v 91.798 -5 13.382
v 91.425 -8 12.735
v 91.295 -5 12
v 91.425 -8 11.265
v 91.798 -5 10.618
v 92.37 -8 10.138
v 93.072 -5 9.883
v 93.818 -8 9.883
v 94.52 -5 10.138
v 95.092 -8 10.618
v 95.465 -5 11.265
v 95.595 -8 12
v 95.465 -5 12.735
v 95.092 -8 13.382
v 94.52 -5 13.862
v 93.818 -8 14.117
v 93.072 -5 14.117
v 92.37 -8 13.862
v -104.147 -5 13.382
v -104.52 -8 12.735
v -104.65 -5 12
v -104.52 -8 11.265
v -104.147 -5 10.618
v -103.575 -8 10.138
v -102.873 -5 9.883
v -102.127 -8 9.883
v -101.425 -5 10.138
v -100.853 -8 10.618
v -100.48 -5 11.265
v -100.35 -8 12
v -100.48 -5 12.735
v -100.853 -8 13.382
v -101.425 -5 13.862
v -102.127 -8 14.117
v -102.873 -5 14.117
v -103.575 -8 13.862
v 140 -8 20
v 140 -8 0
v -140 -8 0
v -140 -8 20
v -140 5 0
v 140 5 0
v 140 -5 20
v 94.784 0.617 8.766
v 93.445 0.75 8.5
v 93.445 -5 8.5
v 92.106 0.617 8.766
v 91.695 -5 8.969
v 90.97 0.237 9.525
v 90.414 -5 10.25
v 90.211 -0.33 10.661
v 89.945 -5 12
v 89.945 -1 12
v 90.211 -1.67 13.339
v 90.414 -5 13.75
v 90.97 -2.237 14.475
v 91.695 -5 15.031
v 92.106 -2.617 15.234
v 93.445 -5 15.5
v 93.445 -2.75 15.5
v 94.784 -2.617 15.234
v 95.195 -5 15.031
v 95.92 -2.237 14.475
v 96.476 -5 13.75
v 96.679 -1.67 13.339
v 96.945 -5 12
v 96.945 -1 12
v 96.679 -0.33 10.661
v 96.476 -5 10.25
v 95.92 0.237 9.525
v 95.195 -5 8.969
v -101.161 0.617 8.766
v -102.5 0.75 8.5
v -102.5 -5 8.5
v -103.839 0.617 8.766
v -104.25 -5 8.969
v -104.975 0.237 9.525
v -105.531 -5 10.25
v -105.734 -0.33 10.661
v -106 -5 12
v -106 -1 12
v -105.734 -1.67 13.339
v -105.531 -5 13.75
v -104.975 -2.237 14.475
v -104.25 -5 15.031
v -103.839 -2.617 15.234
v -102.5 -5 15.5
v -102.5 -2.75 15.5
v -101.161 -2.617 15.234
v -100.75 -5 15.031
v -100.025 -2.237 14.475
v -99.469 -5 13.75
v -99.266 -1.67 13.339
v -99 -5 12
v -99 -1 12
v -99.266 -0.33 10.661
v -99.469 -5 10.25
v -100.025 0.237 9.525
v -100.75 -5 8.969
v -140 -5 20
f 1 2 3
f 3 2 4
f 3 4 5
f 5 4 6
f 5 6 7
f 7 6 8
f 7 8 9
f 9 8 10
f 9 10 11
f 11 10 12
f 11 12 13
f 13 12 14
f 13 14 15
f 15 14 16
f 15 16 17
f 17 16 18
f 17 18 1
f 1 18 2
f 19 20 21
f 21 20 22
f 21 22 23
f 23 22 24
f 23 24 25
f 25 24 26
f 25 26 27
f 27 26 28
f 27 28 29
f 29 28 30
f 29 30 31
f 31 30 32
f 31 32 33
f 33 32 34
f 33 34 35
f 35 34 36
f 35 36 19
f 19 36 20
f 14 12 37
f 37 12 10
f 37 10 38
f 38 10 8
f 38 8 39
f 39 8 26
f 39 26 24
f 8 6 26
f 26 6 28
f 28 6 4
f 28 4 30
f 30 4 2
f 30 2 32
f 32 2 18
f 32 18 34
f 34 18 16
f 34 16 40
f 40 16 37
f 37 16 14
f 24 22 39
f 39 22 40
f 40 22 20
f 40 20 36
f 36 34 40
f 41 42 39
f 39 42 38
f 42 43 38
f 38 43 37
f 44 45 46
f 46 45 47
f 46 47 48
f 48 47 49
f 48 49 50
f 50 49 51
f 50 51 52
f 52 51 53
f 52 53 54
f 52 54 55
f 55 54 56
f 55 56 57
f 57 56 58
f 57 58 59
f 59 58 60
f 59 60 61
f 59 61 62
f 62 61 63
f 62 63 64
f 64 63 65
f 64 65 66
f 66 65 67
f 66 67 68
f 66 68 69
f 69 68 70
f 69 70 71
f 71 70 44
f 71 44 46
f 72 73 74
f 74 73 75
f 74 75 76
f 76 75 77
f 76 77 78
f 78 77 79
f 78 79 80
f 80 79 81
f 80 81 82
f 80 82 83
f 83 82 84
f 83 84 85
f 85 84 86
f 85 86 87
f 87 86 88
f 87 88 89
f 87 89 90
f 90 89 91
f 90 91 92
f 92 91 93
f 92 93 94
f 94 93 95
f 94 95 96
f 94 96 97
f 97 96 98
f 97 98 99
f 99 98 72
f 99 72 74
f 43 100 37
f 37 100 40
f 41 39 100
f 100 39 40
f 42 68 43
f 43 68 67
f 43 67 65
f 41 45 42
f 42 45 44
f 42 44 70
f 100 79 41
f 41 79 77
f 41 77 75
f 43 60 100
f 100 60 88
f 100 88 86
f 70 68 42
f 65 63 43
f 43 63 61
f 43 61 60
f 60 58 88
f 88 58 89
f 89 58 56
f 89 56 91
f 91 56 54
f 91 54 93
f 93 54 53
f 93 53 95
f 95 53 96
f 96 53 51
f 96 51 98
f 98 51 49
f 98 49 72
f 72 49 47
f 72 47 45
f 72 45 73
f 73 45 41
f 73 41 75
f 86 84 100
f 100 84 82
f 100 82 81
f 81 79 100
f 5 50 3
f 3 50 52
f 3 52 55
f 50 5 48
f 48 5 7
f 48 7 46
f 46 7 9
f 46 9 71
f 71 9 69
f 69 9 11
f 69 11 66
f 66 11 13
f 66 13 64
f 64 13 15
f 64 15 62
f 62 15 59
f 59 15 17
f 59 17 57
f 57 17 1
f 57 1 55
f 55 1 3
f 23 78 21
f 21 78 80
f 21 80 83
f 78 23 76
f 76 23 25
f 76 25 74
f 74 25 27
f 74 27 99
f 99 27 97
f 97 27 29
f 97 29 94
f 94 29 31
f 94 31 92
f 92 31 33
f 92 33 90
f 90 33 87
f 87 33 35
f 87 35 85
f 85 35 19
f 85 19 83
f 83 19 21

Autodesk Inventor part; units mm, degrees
ref_plane "YZ Plane" through (0, 0, 0) normal (1, 0, 0) x (0, 1, 0)
ref_plane "XZ Plane" through (0, 0, 0) normal (0, 1, 0) x (-1, 0, 0)
ref_plane "XY Plane" through (0, 0, 0) normal (0, 0, 1) x (1, 0, 0)
sketch "Sketch1" plane through (0, 0, 0) normal (0, 0, 1) x (1, 0, 0)
  line L0 (140, 5) -> (-140, 5)
  line L1 (-140, 5) -> (-140, -5)
  line L2 (-140, -5) -> (140, -5)
  line L3 (140, -5) -> (140, 5)
  line L4 (140, 5) -> (-140, -5) construction
  line L5 (-140, 5) -> (140, -5) construction
  point P0 (0, 0)
  dimension "d0" = 280
  dimension "d1" = 10
extrude "Extrusion1" add sketch "Sketch1" along normal blind 20
sketch "Sketch6" plane through (-140, -5, 0) normal (0, -1, 0) x (1, 0, 0)
  line L0 (0, 0) -> (0, 20) projected
  line L1 (0, 0) -> (280, 0) projected
  line L2 (0, 20) -> (280, 20)
  line L3 (280, 20) -> (280, 0)
  line L4 (280, 0) -> (0, 0)
  line L5 (0, 0) -> (0, 20)
  point P0 (140, 0)
extrude "Extrusion4" add sketch "Sketch6" along normal blind 3
sketch "Sketch7" plane through (-140, -8, 0) normal (0, -1, 0) x (1, 0, 0)
  point P0 (140, 0)
sketch "Sketch8" plane through (-140, -8, 0) normal (0, -1, 0) x (1, 0, 0)
  circle A0 centre (37.5, 12) radius 2.1 projected
  circle A1 centre (37.5, 12) radius 2.15
  circle A2 centre (233.4451, 12) radius 2.15
  point P0 (140, 0)
  dimension "d23" = 4.3
  dimension "d24" = 4.3
extrude "Extrusion5" cut sketch "Sketch8" against normal through all contours A0 | A1 | A2
sketch "Sketch9" plane through (-140, 5, 0) normal (0, 1, 0) x (1, 0, 0)
  circle A0 centre (37.5, -12) radius 2.15 projected
  circle A1 centre (37.5, -12) radius 3.5
  circle A2 centre (233.4451, -12) radius 2.15 projected
  circle A3 centre (233.4451, -12) radius 3.5
  point P0 (140, 0)
  dimension "d27" = 7
  dimension "d28" = 7
extrude "Extrusion6" cut sketch "Sketch9" against normal blind 10 contours A0 | A1 | A2 | A3
sketch "Sketch10" plane through (-140, 5, 0) normal (-1, 0, 0) x (0, 0, 1)
  line L0 (0, 0) -> (20, 0) projected
  line L1 (20, 0) -> (20, -10)
  line L2 (20, 0) -> (20, -13) projected
  line L3 (20, 0) -> (30, 0) construction
  line L4 (0, 0) -> (0, -13) projected
  line L5 (20, -10) -> (0, 0)
  line L6 (0, 0) -> (20, 0)
  point P0 (0, -5)
  dimension "d31" = 10
  dimension "d32" = 90
extrude "Extrusion7" cut sketch "Sketch10" against normal through all
properties part number "paw shelf_v02"
